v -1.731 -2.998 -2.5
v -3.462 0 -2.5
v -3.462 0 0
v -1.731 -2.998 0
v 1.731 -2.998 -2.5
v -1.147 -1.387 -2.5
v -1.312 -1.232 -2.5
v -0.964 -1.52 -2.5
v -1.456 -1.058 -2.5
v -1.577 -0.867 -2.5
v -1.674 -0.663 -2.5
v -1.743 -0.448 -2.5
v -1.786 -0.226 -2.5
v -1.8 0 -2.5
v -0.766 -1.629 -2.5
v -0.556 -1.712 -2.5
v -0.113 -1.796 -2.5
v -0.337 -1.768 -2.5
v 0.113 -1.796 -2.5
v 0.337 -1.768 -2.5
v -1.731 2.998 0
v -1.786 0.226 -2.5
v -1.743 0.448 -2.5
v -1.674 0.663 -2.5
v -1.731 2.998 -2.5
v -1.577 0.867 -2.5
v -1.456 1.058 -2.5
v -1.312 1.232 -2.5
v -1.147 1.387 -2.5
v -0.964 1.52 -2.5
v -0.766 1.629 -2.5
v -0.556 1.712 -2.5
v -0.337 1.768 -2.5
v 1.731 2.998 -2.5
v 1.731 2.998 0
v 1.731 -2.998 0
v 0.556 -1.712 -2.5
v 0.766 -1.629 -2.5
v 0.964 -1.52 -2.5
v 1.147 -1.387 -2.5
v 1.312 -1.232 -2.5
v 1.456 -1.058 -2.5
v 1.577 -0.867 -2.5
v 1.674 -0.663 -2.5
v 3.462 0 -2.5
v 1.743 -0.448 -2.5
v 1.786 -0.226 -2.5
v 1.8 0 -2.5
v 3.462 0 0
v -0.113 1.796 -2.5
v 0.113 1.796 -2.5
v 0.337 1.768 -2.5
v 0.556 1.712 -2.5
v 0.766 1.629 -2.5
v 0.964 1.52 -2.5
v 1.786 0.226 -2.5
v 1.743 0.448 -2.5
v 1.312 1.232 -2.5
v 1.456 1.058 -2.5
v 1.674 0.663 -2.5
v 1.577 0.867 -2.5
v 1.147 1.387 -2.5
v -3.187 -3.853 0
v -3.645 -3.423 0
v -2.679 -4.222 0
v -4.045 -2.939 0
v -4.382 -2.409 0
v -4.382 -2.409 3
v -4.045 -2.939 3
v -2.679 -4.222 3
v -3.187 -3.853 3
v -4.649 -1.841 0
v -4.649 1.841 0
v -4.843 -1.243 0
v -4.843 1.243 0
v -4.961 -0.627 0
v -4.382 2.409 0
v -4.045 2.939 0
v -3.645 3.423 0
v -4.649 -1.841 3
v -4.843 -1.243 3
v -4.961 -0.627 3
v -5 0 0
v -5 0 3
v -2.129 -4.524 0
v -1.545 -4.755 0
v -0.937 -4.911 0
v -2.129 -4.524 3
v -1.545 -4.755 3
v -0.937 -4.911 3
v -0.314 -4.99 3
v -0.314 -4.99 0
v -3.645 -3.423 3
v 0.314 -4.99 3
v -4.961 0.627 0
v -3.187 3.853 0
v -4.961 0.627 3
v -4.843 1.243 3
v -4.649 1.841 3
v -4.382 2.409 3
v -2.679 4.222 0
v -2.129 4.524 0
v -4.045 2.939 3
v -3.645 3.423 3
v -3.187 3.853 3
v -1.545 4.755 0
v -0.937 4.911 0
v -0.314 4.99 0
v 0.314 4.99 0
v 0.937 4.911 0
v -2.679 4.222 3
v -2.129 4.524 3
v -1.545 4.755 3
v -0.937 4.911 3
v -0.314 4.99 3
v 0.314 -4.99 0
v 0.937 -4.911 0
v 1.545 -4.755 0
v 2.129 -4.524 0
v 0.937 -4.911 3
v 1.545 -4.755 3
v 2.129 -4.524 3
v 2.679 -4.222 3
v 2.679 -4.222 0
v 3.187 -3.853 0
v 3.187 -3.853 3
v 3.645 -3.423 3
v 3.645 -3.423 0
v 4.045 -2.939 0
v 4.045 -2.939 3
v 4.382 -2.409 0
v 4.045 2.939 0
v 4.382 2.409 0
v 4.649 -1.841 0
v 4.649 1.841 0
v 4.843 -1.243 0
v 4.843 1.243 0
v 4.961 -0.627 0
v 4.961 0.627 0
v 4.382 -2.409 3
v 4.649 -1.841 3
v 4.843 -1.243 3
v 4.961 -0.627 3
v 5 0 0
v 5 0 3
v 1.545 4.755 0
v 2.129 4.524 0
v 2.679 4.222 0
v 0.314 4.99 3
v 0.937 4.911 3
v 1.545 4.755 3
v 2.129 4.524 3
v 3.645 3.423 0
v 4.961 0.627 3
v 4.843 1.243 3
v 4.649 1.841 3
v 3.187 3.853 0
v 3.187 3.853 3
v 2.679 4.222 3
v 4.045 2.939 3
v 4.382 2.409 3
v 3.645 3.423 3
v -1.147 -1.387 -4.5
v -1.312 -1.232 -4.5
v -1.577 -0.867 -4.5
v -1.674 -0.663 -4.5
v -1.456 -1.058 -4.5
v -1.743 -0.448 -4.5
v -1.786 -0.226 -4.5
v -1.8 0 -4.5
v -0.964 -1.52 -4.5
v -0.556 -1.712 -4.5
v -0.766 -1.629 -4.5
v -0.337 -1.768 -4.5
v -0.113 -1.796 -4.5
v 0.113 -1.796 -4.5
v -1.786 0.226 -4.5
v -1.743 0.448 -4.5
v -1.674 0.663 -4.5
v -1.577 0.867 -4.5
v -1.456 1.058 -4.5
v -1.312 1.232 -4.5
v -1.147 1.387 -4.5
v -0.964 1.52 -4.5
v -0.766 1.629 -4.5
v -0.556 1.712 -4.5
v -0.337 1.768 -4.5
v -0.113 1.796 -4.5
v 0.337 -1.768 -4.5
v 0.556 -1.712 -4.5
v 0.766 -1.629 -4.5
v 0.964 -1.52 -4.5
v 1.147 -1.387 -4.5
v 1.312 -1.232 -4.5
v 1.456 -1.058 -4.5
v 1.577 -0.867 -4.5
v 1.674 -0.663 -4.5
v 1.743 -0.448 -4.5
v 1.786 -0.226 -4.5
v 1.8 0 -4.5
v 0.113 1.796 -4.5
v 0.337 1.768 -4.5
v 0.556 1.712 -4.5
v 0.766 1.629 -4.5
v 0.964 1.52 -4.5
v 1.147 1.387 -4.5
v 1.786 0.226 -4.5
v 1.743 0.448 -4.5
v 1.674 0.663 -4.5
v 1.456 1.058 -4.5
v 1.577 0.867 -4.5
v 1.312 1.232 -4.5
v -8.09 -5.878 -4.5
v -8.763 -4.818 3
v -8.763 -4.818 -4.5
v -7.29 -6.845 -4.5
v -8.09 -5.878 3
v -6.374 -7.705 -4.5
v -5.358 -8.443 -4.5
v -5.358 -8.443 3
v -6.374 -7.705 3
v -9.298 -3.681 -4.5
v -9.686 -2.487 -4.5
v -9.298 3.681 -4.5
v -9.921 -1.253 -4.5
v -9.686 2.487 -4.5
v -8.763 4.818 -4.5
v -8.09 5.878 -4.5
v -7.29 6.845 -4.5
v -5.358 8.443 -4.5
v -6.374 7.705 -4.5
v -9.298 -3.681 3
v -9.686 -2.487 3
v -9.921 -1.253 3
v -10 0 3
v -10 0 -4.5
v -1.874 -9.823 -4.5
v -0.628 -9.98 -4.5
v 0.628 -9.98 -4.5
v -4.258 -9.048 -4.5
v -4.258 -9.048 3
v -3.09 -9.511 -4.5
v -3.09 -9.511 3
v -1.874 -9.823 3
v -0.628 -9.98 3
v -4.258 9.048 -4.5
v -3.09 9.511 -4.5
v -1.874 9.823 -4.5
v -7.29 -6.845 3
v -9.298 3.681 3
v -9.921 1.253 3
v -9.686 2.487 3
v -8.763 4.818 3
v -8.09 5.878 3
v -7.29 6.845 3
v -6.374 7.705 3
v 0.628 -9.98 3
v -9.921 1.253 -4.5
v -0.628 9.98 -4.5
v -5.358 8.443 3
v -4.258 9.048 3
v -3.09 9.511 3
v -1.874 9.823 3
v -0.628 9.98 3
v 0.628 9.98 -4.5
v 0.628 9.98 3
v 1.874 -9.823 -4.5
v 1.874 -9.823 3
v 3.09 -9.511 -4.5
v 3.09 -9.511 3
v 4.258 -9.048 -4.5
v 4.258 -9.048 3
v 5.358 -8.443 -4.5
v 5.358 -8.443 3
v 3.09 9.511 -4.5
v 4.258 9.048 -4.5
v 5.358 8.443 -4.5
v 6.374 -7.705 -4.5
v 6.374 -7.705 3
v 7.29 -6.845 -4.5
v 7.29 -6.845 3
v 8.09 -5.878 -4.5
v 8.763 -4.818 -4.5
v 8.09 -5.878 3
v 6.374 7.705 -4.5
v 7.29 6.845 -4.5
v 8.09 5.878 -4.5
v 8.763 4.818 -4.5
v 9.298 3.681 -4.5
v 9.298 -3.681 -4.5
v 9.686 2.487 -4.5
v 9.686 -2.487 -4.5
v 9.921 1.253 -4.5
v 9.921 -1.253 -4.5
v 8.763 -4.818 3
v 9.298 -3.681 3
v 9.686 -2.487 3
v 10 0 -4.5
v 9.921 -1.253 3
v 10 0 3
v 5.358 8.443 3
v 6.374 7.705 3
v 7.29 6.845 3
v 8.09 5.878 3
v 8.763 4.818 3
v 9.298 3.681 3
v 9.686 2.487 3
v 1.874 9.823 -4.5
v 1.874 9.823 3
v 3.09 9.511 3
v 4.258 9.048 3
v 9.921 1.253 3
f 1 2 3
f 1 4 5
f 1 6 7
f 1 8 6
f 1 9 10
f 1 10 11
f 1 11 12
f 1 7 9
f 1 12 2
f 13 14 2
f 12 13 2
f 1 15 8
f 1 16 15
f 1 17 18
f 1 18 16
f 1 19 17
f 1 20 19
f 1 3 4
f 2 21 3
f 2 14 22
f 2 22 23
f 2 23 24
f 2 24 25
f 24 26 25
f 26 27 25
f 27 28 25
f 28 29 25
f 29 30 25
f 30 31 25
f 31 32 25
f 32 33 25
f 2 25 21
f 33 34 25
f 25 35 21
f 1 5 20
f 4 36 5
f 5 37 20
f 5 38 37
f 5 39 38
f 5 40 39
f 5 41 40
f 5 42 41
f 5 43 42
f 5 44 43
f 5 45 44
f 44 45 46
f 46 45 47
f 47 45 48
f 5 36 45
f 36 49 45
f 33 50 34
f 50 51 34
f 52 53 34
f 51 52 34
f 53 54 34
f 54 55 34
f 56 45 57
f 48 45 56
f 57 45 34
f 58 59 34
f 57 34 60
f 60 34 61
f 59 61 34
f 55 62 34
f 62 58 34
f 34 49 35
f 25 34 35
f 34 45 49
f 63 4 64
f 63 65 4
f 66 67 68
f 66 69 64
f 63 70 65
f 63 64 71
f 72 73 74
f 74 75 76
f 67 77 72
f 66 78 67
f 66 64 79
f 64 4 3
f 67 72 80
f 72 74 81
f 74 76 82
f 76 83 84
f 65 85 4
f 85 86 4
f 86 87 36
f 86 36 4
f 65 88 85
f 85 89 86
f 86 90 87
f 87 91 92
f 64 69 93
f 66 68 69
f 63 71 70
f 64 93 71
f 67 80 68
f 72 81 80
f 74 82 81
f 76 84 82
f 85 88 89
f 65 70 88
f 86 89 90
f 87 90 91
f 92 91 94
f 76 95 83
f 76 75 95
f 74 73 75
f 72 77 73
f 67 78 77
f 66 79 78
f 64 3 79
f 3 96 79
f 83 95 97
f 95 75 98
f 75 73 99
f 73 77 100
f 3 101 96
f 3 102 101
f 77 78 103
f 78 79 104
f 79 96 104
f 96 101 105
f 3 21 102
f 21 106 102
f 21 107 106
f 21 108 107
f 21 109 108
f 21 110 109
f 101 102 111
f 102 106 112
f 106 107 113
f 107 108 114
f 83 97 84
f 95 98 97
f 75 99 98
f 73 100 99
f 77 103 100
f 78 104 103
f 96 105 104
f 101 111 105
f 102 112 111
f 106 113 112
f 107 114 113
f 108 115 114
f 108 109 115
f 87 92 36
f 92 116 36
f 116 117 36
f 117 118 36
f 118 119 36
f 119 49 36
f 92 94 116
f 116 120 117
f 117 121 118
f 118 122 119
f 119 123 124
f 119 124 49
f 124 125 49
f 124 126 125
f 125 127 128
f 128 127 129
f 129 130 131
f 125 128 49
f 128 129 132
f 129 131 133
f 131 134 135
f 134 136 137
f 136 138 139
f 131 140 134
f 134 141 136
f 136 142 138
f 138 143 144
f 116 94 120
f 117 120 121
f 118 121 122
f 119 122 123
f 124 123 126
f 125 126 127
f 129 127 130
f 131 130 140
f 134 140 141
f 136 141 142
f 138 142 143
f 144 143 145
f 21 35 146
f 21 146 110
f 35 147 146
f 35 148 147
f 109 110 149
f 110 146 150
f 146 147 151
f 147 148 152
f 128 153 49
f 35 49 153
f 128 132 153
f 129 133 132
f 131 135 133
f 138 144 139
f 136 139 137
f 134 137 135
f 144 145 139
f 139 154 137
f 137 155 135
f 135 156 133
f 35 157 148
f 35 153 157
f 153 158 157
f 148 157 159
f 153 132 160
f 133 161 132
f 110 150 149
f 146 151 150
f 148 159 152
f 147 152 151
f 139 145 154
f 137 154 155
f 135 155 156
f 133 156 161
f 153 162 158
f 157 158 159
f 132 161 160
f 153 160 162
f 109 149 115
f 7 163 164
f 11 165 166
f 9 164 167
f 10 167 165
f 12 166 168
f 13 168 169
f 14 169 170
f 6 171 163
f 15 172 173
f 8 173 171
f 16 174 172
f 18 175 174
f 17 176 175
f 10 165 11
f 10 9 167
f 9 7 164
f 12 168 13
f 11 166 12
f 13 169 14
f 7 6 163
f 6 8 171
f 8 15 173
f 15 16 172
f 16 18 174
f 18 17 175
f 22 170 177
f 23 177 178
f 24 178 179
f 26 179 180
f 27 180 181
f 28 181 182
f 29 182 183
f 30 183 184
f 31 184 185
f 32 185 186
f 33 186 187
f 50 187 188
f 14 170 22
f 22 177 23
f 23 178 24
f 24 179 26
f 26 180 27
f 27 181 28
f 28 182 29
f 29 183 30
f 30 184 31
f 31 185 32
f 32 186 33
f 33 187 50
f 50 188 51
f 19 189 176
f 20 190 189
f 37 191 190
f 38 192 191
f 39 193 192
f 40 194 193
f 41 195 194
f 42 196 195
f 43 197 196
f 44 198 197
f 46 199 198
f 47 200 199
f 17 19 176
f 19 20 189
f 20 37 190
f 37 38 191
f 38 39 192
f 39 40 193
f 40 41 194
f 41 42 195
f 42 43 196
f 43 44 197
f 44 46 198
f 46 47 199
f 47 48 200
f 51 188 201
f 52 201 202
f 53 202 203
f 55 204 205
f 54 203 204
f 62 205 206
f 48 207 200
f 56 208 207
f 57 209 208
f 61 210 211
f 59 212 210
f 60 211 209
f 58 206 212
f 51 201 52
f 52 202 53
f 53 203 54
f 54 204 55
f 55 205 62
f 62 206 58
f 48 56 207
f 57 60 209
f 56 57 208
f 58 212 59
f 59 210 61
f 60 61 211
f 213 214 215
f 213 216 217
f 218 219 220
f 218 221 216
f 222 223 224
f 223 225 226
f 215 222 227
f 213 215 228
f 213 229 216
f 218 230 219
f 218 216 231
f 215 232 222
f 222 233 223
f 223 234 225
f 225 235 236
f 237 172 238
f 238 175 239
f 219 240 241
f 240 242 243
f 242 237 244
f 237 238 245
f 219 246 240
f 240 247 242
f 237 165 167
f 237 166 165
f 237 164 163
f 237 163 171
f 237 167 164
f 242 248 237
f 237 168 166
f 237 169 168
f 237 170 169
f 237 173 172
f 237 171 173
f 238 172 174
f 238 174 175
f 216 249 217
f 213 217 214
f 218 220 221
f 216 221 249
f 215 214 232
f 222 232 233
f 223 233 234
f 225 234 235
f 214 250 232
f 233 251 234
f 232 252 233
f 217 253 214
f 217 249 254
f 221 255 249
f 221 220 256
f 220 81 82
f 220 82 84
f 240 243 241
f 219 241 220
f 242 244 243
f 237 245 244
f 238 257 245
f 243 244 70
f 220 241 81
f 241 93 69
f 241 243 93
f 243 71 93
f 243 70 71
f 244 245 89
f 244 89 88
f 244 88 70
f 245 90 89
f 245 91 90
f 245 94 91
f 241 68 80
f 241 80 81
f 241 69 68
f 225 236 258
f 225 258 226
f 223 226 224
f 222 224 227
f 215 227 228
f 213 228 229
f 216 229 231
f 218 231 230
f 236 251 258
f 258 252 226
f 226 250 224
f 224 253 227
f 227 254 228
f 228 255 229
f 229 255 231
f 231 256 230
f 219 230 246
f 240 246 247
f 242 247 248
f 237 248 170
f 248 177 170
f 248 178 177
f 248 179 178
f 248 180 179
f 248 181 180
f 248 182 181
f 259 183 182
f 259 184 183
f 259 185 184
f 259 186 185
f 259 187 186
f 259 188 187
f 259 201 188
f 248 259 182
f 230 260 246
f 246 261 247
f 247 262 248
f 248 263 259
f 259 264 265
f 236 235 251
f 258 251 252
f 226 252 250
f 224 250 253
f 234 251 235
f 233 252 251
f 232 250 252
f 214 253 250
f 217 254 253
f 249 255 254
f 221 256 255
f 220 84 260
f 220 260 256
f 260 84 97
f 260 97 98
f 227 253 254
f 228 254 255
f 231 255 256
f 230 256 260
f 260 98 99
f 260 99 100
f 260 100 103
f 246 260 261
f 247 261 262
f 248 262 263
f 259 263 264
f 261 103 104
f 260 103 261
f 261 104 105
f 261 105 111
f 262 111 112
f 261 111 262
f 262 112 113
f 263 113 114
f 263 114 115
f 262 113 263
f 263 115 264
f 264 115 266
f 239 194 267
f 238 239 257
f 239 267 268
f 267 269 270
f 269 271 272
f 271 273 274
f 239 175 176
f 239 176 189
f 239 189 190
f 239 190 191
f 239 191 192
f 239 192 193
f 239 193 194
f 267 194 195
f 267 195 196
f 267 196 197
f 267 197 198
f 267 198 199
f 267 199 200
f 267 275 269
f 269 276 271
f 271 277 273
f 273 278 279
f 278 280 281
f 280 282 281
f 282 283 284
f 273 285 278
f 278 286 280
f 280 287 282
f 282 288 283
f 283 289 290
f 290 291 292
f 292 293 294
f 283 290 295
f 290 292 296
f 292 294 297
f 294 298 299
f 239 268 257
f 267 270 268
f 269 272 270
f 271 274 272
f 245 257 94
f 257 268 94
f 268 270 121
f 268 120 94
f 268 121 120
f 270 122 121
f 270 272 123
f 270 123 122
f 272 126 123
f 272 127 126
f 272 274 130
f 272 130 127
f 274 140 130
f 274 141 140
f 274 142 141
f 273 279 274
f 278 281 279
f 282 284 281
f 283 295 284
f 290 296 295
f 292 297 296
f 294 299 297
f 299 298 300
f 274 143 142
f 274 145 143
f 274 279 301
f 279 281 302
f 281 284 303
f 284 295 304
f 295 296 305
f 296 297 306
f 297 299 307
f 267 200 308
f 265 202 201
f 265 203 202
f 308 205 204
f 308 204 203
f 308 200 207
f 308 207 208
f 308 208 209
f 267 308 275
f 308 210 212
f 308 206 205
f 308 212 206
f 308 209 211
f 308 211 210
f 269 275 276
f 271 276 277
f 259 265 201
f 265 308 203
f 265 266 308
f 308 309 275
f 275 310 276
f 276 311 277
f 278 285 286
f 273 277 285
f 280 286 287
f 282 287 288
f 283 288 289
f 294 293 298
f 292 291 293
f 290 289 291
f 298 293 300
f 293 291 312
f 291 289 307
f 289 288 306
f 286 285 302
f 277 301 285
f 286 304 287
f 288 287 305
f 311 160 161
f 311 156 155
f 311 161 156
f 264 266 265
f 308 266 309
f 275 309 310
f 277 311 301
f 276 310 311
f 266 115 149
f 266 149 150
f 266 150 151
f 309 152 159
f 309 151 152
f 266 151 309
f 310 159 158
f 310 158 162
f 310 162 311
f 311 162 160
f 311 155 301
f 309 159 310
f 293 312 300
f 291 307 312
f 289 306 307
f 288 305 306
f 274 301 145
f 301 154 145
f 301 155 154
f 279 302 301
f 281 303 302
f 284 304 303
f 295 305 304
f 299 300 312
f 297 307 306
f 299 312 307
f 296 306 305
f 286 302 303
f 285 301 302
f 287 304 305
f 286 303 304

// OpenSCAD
$fn = 50;

difference() {
	union() {
		translate(v = [0, 0, -4.5]) {
			cylinder(h = 7.5, r = 10.0);
		}
	}
	union() {
		translate(v = [0, 0, 0]) {
			rotate(a = [0, 0, 0]) {
				difference() {
					union() {
						translate(v = [0, 0, -2.5]) {
							linear_extrude(height = 2.5) {
								polygon(points = [[3.4619999999999997, 0.0], [1.7310000000000003, 2.9981799479017264], [-1.7309999999999992, 2.9981799479017264], [-3.4619999999999997, 4.2397272186481365e-16], [-1.7310000000000014, -2.998179947901726], [1.7309999999999977, -2.9981799479017277]]);
							}
						}
					}
					union();
				}
			}
		}
		#cylinder(h = 3, r = 5.0);
		#translate(v = [0, 0, -100.0]) {
			cylinder(h = 200, r = 1.8);
		}
	}
}
